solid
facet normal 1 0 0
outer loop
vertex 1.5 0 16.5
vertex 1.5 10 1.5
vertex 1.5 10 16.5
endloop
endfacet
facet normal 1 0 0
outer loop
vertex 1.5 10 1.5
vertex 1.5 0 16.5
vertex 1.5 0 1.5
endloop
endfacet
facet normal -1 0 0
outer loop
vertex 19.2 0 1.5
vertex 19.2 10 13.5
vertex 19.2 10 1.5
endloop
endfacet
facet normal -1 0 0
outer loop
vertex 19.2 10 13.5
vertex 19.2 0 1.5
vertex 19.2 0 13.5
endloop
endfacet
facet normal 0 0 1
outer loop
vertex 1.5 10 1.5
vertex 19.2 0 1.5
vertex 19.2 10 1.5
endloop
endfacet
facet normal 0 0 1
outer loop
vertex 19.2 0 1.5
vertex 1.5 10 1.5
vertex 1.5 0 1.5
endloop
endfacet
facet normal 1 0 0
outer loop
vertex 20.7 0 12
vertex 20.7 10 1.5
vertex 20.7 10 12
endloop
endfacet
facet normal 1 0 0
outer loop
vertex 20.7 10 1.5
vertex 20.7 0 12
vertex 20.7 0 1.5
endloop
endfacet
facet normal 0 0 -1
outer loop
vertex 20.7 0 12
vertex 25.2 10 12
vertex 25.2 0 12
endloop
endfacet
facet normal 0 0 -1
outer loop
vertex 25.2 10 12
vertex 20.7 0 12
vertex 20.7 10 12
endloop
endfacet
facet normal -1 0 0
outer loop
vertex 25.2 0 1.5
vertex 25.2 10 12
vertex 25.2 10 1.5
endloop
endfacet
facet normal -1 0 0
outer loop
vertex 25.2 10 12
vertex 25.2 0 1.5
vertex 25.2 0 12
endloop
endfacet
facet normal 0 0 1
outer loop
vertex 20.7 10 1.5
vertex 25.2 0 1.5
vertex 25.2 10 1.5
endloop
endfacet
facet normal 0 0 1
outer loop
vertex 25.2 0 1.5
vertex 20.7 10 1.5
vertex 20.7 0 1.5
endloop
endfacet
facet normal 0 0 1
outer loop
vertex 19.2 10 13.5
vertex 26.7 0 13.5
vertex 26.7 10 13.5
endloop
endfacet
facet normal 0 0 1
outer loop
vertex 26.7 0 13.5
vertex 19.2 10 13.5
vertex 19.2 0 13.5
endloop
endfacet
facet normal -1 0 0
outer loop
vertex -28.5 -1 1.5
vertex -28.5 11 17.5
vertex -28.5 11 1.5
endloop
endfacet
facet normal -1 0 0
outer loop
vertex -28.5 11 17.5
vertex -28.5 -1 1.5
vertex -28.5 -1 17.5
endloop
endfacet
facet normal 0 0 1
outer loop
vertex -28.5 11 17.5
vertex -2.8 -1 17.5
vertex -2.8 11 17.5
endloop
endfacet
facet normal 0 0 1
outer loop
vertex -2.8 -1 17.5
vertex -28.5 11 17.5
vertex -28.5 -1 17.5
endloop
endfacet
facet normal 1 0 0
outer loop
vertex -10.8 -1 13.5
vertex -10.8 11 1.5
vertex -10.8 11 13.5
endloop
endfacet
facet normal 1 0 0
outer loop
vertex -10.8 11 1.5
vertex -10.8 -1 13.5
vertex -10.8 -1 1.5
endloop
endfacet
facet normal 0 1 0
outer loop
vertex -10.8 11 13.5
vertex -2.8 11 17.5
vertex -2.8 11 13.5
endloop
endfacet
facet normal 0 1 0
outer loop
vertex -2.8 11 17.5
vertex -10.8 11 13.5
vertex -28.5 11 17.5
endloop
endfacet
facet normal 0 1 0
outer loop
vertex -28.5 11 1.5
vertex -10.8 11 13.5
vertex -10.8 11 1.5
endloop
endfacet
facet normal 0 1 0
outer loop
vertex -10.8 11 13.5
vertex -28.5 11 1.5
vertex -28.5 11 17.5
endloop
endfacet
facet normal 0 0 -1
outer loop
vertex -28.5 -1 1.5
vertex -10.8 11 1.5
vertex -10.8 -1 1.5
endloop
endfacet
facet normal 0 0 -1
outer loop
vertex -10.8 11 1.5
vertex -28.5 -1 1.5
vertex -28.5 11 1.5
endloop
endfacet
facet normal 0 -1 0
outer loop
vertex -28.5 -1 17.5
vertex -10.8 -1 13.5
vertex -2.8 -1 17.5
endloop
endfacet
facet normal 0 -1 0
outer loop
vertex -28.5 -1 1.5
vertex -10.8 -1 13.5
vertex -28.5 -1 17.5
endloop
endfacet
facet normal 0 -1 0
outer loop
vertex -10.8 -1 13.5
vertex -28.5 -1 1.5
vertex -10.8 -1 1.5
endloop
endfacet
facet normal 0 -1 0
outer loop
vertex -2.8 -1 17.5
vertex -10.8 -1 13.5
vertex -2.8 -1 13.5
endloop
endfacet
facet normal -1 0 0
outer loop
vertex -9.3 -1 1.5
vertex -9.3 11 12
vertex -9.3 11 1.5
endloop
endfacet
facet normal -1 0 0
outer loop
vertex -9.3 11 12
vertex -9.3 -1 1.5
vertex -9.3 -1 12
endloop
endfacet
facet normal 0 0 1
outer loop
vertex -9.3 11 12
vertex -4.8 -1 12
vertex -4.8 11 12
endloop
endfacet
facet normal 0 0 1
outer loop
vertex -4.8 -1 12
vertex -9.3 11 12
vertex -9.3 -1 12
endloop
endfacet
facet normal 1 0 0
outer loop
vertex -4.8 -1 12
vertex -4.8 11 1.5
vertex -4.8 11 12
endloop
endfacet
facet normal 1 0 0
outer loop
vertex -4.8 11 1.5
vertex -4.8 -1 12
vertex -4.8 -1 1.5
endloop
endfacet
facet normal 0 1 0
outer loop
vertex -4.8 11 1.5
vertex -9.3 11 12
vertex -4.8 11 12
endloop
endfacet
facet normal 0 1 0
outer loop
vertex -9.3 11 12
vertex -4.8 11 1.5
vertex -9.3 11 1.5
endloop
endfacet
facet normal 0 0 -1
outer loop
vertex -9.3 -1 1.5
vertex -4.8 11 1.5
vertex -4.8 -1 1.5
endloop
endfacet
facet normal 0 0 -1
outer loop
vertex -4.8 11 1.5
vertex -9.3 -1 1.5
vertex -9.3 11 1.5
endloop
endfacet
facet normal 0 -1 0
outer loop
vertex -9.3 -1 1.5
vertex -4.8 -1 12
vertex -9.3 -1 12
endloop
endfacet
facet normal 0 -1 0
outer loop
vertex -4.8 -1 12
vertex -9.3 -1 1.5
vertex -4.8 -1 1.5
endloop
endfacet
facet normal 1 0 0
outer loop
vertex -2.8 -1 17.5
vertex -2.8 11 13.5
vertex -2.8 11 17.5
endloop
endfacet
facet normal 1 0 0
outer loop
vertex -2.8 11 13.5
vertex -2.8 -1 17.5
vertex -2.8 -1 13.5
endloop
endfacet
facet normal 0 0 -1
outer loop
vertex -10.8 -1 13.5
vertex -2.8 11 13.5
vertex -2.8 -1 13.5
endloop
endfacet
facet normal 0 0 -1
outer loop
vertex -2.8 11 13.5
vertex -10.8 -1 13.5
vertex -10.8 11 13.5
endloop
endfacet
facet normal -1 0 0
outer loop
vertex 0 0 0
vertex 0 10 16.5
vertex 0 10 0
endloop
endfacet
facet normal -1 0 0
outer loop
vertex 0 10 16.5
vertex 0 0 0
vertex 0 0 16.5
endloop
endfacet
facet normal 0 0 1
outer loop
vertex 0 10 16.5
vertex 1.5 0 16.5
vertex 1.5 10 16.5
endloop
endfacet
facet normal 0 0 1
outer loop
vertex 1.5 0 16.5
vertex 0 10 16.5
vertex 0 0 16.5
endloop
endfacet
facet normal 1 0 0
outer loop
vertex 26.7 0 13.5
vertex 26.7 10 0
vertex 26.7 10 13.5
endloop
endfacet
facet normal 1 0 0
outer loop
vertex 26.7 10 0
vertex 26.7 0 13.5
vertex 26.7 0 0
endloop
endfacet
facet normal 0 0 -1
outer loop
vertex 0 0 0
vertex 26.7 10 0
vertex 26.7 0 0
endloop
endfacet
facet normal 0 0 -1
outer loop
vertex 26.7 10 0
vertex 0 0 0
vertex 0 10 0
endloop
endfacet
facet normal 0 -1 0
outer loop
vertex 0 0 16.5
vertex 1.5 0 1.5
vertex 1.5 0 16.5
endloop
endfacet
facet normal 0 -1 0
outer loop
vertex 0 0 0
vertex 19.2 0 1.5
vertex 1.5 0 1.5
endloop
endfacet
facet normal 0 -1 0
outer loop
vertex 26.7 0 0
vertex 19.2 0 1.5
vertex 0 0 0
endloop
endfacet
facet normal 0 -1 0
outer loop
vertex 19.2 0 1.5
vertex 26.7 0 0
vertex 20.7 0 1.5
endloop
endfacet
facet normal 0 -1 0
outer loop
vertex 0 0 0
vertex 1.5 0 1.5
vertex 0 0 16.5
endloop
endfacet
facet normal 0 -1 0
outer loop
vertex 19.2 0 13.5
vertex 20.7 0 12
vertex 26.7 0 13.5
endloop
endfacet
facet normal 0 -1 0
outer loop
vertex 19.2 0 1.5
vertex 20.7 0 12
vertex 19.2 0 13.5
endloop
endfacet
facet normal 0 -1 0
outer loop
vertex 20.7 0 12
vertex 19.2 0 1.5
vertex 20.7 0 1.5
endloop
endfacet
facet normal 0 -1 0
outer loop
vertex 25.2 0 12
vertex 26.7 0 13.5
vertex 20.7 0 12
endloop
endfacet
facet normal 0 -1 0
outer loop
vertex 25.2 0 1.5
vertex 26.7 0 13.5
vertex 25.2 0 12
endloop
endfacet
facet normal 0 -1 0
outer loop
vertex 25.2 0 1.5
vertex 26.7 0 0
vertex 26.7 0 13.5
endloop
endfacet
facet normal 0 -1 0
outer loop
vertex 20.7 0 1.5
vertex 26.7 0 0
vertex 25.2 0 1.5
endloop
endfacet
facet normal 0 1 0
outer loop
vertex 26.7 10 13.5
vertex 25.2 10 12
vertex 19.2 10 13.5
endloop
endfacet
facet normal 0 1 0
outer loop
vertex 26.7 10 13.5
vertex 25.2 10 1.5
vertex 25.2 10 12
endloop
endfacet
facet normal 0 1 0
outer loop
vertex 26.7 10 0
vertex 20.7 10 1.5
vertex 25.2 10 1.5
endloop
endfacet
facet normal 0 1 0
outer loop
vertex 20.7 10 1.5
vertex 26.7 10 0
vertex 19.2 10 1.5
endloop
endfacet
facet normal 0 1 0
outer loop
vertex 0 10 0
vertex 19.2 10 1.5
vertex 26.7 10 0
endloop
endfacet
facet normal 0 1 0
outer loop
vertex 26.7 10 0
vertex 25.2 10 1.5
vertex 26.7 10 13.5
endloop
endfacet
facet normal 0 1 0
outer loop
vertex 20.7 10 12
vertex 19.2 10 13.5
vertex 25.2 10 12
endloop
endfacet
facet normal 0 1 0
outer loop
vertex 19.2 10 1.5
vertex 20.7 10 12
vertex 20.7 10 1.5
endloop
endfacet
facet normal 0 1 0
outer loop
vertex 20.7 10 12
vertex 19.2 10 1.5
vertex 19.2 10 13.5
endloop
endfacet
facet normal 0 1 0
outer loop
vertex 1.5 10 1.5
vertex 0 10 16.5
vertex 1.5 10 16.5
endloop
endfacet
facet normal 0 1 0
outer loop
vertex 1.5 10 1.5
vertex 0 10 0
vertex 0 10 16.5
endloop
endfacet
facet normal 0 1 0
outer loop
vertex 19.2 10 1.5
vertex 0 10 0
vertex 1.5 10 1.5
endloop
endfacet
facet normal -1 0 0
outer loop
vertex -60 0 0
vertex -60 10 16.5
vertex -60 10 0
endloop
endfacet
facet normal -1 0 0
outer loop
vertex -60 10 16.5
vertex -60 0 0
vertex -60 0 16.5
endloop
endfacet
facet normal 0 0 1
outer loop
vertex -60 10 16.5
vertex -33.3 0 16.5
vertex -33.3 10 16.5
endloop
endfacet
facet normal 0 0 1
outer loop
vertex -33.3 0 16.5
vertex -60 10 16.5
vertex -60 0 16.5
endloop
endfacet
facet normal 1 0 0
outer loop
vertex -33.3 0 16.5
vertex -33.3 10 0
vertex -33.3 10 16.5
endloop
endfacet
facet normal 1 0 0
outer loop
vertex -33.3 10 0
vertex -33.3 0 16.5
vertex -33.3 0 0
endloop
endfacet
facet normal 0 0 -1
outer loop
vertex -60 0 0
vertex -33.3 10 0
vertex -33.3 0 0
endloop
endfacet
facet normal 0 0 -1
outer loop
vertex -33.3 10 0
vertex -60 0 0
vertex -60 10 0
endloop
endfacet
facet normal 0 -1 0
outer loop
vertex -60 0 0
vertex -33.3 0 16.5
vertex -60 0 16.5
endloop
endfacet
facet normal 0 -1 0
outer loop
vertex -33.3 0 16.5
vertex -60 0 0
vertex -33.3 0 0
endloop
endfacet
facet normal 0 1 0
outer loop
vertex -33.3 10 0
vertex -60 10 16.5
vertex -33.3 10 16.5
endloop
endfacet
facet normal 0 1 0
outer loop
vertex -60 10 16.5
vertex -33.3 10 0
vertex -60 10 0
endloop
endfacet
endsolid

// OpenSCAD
// wire is 7.5mm x 4.5mm

wireThickness=7.5; // mm
wireHeight=4.5; // mm


frameThickness=17.7; // mm
clipThickness=1.5; // mm
clipWidth=10; // mm
clipHeight=15; // mm
wirespace=3; // mm

// block
module block() {
  blockLength=(4*clipThickness)
    + frameThickness
    + wirespace;
  cube([blockLength, clipWidth, clipHeight + clipThickness]);
}


// cutouts
module cutouts() {
  // frame space
  translate([clipThickness, -1, clipThickness])
  cube([frameThickness, clipWidth + 2, clipHeight+1 ]);

  // wire space
  translate([frameThickness + 2 * clipThickness,
    -1, clipThickness])
  cube([wireHeight, clipWidth+2, clipHeight - clipThickness * 3]);
  
  // top cutoff
  translate([frameThickness + 1 * clipThickness, -1, clipHeight - clipThickness])
  cube([8, clipWidth+2, clipThickness * 2 + 1]);
  
}

translate([-60,0,0])
block();

translate([-30,0,0])
cutouts();

difference() {
  block();
  cutouts();
}

// 
// cube([2,25,25]);
